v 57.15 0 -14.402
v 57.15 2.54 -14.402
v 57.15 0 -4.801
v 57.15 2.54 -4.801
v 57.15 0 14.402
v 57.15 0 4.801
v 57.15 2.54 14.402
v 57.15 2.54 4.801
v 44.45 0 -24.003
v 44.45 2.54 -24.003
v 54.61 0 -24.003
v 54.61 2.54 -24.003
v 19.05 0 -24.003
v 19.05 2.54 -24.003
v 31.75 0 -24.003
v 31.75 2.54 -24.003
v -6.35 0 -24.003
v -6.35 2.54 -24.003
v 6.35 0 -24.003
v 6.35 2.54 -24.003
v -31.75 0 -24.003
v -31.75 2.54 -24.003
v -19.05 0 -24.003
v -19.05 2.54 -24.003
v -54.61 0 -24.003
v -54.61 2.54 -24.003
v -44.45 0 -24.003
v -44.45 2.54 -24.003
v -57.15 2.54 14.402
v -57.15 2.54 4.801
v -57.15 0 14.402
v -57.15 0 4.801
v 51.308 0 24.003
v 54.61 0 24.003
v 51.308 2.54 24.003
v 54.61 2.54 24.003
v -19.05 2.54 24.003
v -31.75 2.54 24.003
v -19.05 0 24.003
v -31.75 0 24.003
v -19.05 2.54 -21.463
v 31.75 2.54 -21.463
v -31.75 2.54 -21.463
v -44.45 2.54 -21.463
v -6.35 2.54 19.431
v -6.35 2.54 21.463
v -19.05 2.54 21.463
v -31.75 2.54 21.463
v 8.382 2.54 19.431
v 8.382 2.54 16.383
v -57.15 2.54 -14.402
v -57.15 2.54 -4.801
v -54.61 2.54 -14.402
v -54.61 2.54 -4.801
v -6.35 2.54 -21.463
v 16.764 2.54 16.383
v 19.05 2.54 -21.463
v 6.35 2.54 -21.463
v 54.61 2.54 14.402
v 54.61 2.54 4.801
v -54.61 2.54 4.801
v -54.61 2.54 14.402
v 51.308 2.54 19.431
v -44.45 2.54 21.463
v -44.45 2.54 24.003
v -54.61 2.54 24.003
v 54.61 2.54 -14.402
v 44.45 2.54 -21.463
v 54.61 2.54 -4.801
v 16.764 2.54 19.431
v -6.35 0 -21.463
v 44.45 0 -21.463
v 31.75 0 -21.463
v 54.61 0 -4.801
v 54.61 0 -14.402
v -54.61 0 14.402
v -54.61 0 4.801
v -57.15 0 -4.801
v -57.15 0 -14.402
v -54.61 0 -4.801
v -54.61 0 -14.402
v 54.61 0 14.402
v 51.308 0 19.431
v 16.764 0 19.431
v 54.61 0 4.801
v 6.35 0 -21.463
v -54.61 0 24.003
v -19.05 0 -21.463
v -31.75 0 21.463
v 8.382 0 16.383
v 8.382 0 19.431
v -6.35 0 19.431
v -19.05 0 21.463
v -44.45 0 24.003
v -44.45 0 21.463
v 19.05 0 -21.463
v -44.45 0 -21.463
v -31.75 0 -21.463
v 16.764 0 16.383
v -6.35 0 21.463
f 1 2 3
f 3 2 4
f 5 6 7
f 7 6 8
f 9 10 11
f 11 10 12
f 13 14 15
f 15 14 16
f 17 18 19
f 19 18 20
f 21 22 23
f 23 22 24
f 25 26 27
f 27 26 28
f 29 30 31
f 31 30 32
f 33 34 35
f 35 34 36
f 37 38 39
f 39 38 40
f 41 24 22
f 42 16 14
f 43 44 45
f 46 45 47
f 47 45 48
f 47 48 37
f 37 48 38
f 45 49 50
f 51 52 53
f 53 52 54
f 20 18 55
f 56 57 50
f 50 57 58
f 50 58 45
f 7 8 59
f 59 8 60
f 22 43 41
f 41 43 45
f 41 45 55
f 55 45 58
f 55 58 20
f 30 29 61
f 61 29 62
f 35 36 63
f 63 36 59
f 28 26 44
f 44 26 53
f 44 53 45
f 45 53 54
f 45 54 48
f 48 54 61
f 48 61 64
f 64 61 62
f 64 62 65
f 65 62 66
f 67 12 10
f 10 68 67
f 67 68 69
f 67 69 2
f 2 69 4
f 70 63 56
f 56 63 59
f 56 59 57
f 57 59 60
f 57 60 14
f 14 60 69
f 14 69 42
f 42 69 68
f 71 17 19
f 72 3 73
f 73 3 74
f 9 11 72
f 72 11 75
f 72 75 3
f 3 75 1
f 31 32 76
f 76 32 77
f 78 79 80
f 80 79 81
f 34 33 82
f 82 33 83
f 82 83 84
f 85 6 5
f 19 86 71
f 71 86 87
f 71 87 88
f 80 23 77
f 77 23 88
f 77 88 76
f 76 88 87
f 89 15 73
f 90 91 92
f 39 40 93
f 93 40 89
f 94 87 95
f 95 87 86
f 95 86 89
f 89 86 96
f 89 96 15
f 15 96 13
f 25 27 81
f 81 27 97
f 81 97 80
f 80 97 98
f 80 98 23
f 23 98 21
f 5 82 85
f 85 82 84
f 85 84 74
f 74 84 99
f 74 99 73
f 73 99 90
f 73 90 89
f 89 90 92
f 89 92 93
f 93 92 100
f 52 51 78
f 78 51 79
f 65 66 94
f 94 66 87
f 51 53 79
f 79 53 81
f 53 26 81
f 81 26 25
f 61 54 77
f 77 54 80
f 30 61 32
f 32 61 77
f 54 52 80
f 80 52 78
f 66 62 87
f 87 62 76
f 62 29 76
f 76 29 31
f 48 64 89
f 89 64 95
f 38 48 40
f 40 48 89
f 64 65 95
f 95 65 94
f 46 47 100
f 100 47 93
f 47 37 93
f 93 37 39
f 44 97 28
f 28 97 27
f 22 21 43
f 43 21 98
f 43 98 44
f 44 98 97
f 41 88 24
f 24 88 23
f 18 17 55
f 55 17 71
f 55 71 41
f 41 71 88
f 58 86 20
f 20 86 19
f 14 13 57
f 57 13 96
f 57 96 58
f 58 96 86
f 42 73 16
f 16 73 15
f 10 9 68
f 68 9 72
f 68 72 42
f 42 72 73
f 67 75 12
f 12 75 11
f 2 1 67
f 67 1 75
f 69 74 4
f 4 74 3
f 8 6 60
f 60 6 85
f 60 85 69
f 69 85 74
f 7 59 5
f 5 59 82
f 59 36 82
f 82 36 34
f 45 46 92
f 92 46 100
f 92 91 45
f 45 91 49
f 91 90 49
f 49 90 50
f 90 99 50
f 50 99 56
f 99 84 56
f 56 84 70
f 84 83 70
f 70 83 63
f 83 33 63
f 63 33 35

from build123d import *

# Parameters (mm, degrees)
SKETCH1_W           = 114.3
SKETCH1_H           = 48.006
BOSS_EXTRUDE1_DEPTH = 2.54
CUT_EXTRUDE2_REACH  = 64.038
SKETCH2_W           = 2.54
SKETCH2_H           = 9.6012
SKETCH2_W_2         = 12.7
SKETCH2_H_2         = 2.54
CUT_EXTRUDE3_DEPTH  = 2.54


with BuildPart() as part:
    # Sketch1 → Boss-Extrude1 (new body)
    with BuildSketch(Plane(origin=(0, 0, 0), x_dir=(1, 0, 0), z_dir=(0, 1, 0))):
        Rectangle(SKETCH1_W, SKETCH1_H)
    extrude(amount=BOSS_EXTRUDE1_DEPTH)

    # Sketch2 → Cut-Extrude2 (cut, up to next)
    with BuildSketch(Plane(origin=(0, 2.54, 0), x_dir=(1, 0, 0), z_dir=(0, 1, 0)), mode=Mode.PRIVATE) as cut_extrude2_sk1:
        with Locations((-55.88, 19.2024)):
            Rectangle(SKETCH2_W, SKETCH2_H)
    cut_extrude2_tool1 = extrude(cut_extrude2_sk1.sketch, amount=-CUT_EXTRUDE2_REACH, mode=Mode.PRIVATE) & part.part
    # Sketch2 → Cut-Extrude2 (cut, up to next)
    with BuildSketch(Plane(origin=(0, 2.54, 0), x_dir=(1, 0, 0), z_dir=(0, 1, 0)), mode=Mode.PRIVATE) as cut_extrude2_sk2:
        with Locations((-38.1, 22.733)):
            Rectangle(SKETCH2_W_2, SKETCH2_H_2)
    cut_extrude2_tool2 = extrude(cut_extrude2_sk2.sketch, amount=-CUT_EXTRUDE2_REACH, mode=Mode.PRIVATE) & part.part
    # Sketch2 → Cut-Extrude2 (cut, up to next)
    with BuildSketch(Plane(origin=(0, 2.54, 0), x_dir=(1, 0, 0), z_dir=(0, 1, 0)), mode=Mode.PRIVATE) as cut_extrude2_sk3:
        with Locations((-12.7, 22.733)):
            Rectangle(SKETCH2_W_2, SKETCH2_H_2)
    cut_extrude2_tool3 = extrude(cut_extrude2_sk3.sketch, amount=-CUT_EXTRUDE2_REACH, mode=Mode.PRIVATE) & part.part
    # Sketch2 → Cut-Extrude2 (cut, up to next)
    with BuildSketch(Plane(origin=(0, 2.54, 0), x_dir=(1, 0, 0), z_dir=(0, 1, 0)), mode=Mode.PRIVATE) as cut_extrude2_sk4:
        with Locations((12.7, 22.733)):
            Rectangle(SKETCH2_W_2, SKETCH2_H_2)
    cut_extrude2_tool4 = extrude(cut_extrude2_sk4.sketch, amount=-CUT_EXTRUDE2_REACH, mode=Mode.PRIVATE) & part.part
    # Sketch2 → Cut-Extrude2 (cut, up to next)
    with BuildSketch(Plane(origin=(0, 2.54, 0), x_dir=(1, 0, 0), z_dir=(0, 1, 0)), mode=Mode.PRIVATE) as cut_extrude2_sk5:
        with Locations((38.1, 22.733)):
            Rectangle(SKETCH2_W_2, SKETCH2_H_2)
    cut_extrude2_tool5 = extrude(cut_extrude2_sk5.sketch, amount=-CUT_EXTRUDE2_REACH, mode=Mode.PRIVATE) & part.part
    # Sketch2 → Cut-Extrude2 (cut, up to next)
    with BuildSketch(Plane(origin=(0, 2.54, 0), x_dir=(1, 0, 0), z_dir=(0, 1, 0)), mode=Mode.PRIVATE) as cut_extrude2_sk6:
        with Locations((55.88, 19.2024)):
            Rectangle(SKETCH2_W, SKETCH2_H)
    cut_extrude2_tool6 = extrude(cut_extrude2_sk6.sketch, amount=-CUT_EXTRUDE2_REACH, mode=Mode.PRIVATE) & part.part
    # Sketch2 → Cut-Extrude2 (cut, up to next)
    with BuildSketch(Plane(origin=(0, 2.54, 0), x_dir=(1, 0, 0), z_dir=(0, 1, 0)), mode=Mode.PRIVATE) as cut_extrude2_sk7:
        with Locations((55.88, 0)):
            Rectangle(SKETCH2_W, SKETCH2_H)
    cut_extrude2_tool7 = extrude(cut_extrude2_sk7.sketch, amount=-CUT_EXTRUDE2_REACH, mode=Mode.PRIVATE) & part.part
    # Sketch2 → Cut-Extrude2 (cut, up to next)
    with BuildSketch(Plane(origin=(0, 2.54, 0), x_dir=(1, 0, 0), z_dir=(0, 1, 0)), mode=Mode.PRIVATE) as cut_extrude2_sk8:
        with Locations((55.88, -19.2024)):
            Rectangle(SKETCH2_W, SKETCH2_H)
    cut_extrude2_tool8 = extrude(cut_extrude2_sk8.sketch, amount=-CUT_EXTRUDE2_REACH, mode=Mode.PRIVATE) & part.part
    # Sketch2 → Cut-Extrude2 (cut, up to next)
    with BuildSketch(Plane(origin=(0, 2.54, 0), x_dir=(1, 0, 0), z_dir=(0, 1, 0)), mode=Mode.PRIVATE) as cut_extrude2_sk9:
        with Locations((38.1, -22.733)):
            Rectangle(SKETCH2_W_2, SKETCH2_H_2)
    cut_extrude2_tool9 = extrude(cut_extrude2_sk9.sketch, amount=-CUT_EXTRUDE2_REACH, mode=Mode.PRIVATE) & part.part
    # Sketch2 → Cut-Extrude2 (cut, up to next)
    with BuildSketch(Plane(origin=(0, 2.54, 0), x_dir=(1, 0, 0), z_dir=(0, 1, 0)), mode=Mode.PRIVATE) as cut_extrude2_sk10:
        with Locations((12.7, -22.733)):
            Rectangle(SKETCH2_W_2, SKETCH2_H_2)
    cut_extrude2_tool10 = extrude(cut_extrude2_sk10.sketch, amount=-CUT_EXTRUDE2_REACH, mode=Mode.PRIVATE) & part.part
    # Sketch2 → Cut-Extrude2 (cut, up to next)
    with BuildSketch(Plane(origin=(0, 2.54, 0), x_dir=(1, 0, 0), z_dir=(0, 1, 0)), mode=Mode.PRIVATE) as cut_extrude2_sk11:
        with Locations((-12.7, -22.733)):
            Rectangle(SKETCH2_W_2, SKETCH2_H_2)
    cut_extrude2_tool11 = extrude(cut_extrude2_sk11.sketch, amount=-CUT_EXTRUDE2_REACH, mode=Mode.PRIVATE) & part.part
    # Sketch2 → Cut-Extrude2 (cut, up to next)
    with BuildSketch(Plane(origin=(0, 2.54, 0), x_dir=(1, 0, 0), z_dir=(0, 1, 0)), mode=Mode.PRIVATE) as cut_extrude2_sk12:
        with Locations((-38.1, -22.733)):
            Rectangle(SKETCH2_W_2, SKETCH2_H_2)
    cut_extrude2_tool12 = extrude(cut_extrude2_sk12.sketch, amount=-CUT_EXTRUDE2_REACH, mode=Mode.PRIVATE) & part.part
    # Sketch2 → Cut-Extrude2 (cut, up to next)
    with BuildSketch(Plane(origin=(0, 2.54, 0), x_dir=(1, 0, 0), z_dir=(0, 1, 0)), mode=Mode.PRIVATE) as cut_extrude2_sk13:
        with Locations((-55.88, -19.2024)):
            Rectangle(SKETCH2_W, SKETCH2_H)
    cut_extrude2_tool13 = extrude(cut_extrude2_sk13.sketch, amount=-CUT_EXTRUDE2_REACH, mode=Mode.PRIVATE) & part.part
    # Sketch2 → Cut-Extrude2 (cut, up to next)
    with BuildSketch(Plane(origin=(0, 2.54, 0), x_dir=(1, 0, 0), z_dir=(0, 1, 0)), mode=Mode.PRIVATE) as cut_extrude2_sk14:
        with Locations((-55.88, 0)):
            Rectangle(SKETCH2_W, SKETCH2_H)
    cut_extrude2_tool14 = extrude(cut_extrude2_sk14.sketch, amount=-CUT_EXTRUDE2_REACH, mode=Mode.PRIVATE) & part.part
    add(cut_extrude2_tool1.solids().sort_by_distance((-55.88, 2.54, -19.2024))[0], mode=Mode.SUBTRACT)
    add(cut_extrude2_tool2.solids().sort_by_distance((-38.1, 2.54, -22.733))[0], mode=Mode.SUBTRACT)
    add(cut_extrude2_tool3.solids().sort_by_distance((-12.7, 2.54, -22.733))[0], mode=Mode.SUBTRACT)
    add(cut_extrude2_tool4.solids().sort_by_distance((12.7, 2.54, -22.733))[0], mode=Mode.SUBTRACT)
    add(cut_extrude2_tool5.solids().sort_by_distance((38.1, 2.54, -22.733))[0], mode=Mode.SUBTRACT)
    add(cut_extrude2_tool6.solids().sort_by_distance((55.88, 2.54, -19.2024))[0], mode=Mode.SUBTRACT)
    add(cut_extrude2_tool7.solids().sort_by_distance((55.88, 2.54, 0))[0], mode=Mode.SUBTRACT)
    add(cut_extrude2_tool8.solids().sort_by_distance((55.88, 2.54, 19.2024))[0], mode=Mode.SUBTRACT)
    add(cut_extrude2_tool9.solids().sort_by_distance((38.1, 2.54, 22.733))[0], mode=Mode.SUBTRACT)
    add(cut_extrude2_tool10.solids().sort_by_distance((12.7, 2.54, 22.733))[0], mode=Mode.SUBTRACT)
    add(cut_extrude2_tool11.solids().sort_by_distance((-12.7, 2.54, 22.733))[0], mode=Mode.SUBTRACT)
    add(cut_extrude2_tool12.solids().sort_by_distance((-38.1, 2.54, 22.733))[0], mode=Mode.SUBTRACT)
    add(cut_extrude2_tool13.solids().sort_by_distance((-55.88, 2.54, 19.2024))[0], mode=Mode.SUBTRACT)
    add(cut_extrude2_tool14.solids().sort_by_distance((-55.88, 2.54, 0))[0], mode=Mode.SUBTRACT)

    # Sketch5 → Cut-Extrude3 (cut)
    with BuildSketch(Plane(origin=(0, 2.54, 0), x_dir=(1, 0, 0), z_dir=(0, 1, 0))):
        Polygon((16.764, -19.431), (51.308, -19.431), (51.308, -24.003), (-6.35, -24.003), (-6.35, -19.431), (8.382, -19.431), (8.382, -16.383), (16.764, -16.383), align=None)
    extrude(amount=-CUT_EXTRUDE3_DEPTH, mode=Mode.SUBTRACT)


solid = part.part
